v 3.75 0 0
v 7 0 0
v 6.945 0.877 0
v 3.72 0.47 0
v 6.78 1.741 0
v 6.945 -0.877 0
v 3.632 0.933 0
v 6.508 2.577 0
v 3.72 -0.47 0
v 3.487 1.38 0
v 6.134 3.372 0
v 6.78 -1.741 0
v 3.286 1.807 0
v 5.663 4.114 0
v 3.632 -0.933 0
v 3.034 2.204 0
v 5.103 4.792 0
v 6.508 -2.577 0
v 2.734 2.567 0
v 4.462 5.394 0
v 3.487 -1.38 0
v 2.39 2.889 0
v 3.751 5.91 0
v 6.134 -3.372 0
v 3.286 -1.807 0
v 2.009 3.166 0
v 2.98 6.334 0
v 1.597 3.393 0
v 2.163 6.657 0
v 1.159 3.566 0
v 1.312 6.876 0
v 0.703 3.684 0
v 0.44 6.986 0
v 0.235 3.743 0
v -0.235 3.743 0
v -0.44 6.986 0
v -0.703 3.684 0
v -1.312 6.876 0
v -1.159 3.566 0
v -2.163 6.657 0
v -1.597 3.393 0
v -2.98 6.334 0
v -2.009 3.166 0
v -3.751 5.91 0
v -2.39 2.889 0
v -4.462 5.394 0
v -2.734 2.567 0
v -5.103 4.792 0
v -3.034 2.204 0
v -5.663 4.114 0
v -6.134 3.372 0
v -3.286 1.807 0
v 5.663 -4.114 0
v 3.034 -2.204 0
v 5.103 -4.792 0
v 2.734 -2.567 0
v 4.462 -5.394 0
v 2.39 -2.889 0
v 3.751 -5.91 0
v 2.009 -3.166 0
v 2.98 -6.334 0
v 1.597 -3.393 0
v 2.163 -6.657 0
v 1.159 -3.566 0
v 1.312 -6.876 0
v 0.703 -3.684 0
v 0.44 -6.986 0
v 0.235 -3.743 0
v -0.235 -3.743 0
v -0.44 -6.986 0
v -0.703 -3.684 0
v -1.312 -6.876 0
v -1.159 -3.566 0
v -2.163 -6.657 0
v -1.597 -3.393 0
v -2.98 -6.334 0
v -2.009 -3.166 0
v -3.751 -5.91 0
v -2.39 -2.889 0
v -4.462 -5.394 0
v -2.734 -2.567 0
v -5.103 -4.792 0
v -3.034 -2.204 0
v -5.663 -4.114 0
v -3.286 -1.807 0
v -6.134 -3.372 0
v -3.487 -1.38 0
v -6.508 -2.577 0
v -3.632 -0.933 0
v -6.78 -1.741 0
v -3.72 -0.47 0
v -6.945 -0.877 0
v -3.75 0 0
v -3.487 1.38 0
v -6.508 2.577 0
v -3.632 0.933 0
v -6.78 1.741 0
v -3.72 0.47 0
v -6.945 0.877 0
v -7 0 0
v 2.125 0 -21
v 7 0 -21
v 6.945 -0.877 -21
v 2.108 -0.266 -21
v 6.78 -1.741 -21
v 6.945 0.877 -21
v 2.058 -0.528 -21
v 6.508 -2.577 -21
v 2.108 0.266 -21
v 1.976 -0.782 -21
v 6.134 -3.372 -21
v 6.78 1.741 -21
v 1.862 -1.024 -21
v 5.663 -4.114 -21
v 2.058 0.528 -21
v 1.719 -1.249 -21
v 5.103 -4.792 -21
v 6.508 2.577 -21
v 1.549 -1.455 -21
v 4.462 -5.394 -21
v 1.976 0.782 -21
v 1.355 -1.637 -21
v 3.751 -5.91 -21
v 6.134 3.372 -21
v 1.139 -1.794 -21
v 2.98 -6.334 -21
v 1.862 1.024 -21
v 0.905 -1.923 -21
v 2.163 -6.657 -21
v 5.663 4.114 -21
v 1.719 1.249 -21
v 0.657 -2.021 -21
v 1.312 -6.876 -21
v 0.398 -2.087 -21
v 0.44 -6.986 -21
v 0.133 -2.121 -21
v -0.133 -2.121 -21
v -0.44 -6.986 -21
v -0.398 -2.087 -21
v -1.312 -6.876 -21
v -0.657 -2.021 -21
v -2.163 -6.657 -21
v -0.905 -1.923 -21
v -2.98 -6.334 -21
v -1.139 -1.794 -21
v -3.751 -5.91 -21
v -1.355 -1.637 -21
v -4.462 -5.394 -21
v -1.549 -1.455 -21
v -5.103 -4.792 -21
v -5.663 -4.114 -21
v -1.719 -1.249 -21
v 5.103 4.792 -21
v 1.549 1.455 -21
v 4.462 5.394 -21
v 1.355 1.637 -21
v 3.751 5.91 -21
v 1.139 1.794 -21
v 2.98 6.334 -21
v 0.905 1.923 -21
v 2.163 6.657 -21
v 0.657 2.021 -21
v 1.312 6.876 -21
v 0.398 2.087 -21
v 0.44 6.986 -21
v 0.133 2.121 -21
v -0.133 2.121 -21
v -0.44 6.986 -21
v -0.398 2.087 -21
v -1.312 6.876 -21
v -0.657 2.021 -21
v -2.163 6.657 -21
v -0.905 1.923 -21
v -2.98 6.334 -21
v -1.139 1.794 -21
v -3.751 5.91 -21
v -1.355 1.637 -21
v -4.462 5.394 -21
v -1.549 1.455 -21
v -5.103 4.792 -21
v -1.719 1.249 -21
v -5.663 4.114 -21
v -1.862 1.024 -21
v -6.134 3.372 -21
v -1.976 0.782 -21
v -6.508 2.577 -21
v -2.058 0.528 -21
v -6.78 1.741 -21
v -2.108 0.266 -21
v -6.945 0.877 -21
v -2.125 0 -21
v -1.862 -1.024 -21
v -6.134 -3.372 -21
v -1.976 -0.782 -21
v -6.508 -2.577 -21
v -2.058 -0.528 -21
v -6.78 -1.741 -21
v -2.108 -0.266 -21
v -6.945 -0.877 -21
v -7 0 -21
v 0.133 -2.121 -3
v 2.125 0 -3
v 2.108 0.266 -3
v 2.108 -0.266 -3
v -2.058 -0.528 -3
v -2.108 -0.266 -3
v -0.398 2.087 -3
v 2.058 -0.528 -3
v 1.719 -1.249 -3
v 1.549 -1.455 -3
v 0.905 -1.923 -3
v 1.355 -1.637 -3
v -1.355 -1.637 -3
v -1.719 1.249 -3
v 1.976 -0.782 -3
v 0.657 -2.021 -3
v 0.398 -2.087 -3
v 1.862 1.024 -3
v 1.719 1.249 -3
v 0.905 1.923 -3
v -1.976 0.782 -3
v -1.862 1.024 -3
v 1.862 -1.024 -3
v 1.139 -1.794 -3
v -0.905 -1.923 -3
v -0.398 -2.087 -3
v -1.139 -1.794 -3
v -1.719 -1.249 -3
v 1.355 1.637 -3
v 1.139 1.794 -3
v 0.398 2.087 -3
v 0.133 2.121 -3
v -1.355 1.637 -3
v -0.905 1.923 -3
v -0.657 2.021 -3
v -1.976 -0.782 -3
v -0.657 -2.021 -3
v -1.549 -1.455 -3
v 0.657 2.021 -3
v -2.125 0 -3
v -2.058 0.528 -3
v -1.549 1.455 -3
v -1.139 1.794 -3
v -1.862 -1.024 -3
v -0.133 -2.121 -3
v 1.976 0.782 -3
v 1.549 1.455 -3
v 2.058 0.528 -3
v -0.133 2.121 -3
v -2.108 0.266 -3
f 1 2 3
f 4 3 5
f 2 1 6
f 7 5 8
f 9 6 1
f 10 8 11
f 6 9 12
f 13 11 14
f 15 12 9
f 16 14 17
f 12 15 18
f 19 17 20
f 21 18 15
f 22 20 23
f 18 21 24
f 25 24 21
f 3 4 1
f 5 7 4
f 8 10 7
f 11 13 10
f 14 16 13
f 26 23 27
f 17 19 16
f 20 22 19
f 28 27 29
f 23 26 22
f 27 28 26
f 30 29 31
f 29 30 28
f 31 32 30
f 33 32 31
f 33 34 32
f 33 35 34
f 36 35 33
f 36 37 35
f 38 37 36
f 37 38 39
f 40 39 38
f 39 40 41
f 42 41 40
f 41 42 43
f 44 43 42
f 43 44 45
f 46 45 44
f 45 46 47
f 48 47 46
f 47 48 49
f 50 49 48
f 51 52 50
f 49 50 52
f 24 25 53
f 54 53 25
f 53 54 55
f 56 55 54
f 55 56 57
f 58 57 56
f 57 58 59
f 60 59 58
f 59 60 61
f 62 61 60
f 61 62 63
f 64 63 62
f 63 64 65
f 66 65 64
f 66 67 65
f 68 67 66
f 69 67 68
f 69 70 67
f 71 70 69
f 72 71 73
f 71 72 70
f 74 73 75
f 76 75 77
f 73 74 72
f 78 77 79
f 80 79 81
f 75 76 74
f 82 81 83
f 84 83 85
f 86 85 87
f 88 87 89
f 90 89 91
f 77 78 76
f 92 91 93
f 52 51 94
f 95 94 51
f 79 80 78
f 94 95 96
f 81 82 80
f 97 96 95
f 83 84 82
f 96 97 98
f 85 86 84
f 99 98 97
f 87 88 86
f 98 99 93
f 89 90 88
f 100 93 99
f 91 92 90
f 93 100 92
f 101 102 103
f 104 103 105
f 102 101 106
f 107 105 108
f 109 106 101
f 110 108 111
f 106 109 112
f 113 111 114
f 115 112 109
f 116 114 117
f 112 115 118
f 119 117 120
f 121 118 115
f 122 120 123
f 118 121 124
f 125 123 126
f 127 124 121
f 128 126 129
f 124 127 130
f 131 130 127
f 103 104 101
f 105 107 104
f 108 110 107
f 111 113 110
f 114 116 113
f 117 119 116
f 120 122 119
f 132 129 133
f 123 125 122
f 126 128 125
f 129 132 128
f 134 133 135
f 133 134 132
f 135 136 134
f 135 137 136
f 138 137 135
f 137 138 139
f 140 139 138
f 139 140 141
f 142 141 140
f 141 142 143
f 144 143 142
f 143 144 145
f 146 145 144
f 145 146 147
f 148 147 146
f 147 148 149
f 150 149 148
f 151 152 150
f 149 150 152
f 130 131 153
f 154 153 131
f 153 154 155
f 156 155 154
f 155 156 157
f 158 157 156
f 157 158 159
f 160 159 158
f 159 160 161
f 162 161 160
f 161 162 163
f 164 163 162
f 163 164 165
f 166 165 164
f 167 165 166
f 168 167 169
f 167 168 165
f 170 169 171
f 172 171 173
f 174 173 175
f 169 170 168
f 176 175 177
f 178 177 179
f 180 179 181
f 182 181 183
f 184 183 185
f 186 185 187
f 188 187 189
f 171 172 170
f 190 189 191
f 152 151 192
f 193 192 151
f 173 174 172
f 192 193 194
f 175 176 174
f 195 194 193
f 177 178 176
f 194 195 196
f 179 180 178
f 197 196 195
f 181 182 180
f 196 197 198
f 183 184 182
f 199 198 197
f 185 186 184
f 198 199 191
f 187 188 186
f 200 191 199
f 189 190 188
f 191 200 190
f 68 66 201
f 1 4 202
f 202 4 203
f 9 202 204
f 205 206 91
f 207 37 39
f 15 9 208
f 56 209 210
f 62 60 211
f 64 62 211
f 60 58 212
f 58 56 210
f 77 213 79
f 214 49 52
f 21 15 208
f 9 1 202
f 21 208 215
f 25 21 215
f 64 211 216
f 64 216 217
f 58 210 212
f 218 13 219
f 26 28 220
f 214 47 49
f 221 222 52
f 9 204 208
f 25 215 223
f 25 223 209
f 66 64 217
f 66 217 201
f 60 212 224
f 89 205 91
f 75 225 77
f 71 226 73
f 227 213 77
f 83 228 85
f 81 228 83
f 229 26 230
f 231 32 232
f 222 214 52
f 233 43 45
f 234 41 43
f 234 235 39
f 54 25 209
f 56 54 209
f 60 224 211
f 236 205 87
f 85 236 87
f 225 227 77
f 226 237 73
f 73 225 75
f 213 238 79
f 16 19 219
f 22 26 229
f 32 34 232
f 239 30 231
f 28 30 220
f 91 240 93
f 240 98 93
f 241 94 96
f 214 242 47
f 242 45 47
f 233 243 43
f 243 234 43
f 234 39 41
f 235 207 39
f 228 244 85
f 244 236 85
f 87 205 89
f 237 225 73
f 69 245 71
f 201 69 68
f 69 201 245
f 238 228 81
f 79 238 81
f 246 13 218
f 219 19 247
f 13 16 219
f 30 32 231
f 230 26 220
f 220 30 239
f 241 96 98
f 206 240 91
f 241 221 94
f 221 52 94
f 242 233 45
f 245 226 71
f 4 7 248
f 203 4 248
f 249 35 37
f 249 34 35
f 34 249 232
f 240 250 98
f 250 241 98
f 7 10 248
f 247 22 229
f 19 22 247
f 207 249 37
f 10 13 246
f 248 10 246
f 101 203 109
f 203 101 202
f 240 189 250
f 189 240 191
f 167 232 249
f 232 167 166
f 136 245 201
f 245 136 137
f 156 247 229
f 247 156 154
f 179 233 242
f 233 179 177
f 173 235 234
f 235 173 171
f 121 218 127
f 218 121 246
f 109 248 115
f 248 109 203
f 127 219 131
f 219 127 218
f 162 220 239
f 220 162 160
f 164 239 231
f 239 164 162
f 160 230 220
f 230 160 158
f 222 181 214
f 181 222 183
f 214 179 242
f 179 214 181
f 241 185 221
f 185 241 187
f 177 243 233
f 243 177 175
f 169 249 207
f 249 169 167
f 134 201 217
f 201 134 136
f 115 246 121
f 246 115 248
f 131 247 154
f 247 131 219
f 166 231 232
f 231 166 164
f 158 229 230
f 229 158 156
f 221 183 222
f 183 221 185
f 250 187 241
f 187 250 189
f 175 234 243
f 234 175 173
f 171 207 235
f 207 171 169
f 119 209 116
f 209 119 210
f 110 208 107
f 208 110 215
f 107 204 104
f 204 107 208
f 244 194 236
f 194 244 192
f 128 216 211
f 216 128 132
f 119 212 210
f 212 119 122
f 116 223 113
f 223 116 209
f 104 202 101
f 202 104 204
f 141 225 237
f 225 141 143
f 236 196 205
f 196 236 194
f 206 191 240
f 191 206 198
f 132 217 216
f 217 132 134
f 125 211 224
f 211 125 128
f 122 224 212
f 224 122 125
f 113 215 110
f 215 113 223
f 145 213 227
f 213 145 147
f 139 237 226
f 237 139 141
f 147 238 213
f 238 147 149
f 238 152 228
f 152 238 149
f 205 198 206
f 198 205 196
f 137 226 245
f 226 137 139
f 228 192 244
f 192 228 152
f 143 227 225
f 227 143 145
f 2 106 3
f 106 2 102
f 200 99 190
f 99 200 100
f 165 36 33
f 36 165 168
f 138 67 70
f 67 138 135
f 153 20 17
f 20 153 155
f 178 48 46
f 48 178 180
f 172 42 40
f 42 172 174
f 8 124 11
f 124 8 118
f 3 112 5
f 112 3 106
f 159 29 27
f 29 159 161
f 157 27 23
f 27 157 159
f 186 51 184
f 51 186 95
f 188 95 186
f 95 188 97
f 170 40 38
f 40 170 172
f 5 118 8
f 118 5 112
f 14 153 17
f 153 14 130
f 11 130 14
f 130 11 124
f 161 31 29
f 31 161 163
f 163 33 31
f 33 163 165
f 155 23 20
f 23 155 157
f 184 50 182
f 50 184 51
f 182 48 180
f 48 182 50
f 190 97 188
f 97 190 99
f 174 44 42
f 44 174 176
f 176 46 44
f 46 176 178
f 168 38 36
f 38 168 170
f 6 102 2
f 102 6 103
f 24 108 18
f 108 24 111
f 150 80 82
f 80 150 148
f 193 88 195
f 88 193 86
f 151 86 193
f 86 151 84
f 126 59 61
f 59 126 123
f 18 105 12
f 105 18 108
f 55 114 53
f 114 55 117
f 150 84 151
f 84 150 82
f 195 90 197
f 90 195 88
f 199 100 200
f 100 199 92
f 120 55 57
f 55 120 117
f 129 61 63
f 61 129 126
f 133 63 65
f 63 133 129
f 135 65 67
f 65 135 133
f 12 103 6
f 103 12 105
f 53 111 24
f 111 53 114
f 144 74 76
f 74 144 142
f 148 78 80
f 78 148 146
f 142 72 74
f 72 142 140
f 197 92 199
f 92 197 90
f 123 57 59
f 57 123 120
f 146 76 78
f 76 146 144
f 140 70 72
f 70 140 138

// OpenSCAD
$fn = 50;


difference() {
	union() {
		translate(v = [0, 0, -21.0000000000]) {
			cylinder(h = 21, r = 7.0000000000);
		}
		cylinder(h = 0, r = 10.0000000000);
	}
	union() {
		translate(v = [0, 0, 0]) {
			rotate(a = [0, 0, 0]) {
				difference() {
					union() {
						#translate(v = [0, 0, -21.0000000000]) {
							cylinder(h = 21, r = 2.0000000000);
						}
						#translate(v = [0, 0, -3]) {
							cylinder(h = 3, r = 7.0000000000, r1 = 2.1250000000, r2 = 3.7500000000);
						}
						#translate(v = [0, 0, -21.0000000000]) {
							cylinder(h = 21, r = 2.1250000000);
						}
						#translate(v = [0, 0, -21.0000000000]) {
							cylinder(h = 21, r = 2.0000000000);
						}
					}
					union();
				}
			}
		}
	}
}
